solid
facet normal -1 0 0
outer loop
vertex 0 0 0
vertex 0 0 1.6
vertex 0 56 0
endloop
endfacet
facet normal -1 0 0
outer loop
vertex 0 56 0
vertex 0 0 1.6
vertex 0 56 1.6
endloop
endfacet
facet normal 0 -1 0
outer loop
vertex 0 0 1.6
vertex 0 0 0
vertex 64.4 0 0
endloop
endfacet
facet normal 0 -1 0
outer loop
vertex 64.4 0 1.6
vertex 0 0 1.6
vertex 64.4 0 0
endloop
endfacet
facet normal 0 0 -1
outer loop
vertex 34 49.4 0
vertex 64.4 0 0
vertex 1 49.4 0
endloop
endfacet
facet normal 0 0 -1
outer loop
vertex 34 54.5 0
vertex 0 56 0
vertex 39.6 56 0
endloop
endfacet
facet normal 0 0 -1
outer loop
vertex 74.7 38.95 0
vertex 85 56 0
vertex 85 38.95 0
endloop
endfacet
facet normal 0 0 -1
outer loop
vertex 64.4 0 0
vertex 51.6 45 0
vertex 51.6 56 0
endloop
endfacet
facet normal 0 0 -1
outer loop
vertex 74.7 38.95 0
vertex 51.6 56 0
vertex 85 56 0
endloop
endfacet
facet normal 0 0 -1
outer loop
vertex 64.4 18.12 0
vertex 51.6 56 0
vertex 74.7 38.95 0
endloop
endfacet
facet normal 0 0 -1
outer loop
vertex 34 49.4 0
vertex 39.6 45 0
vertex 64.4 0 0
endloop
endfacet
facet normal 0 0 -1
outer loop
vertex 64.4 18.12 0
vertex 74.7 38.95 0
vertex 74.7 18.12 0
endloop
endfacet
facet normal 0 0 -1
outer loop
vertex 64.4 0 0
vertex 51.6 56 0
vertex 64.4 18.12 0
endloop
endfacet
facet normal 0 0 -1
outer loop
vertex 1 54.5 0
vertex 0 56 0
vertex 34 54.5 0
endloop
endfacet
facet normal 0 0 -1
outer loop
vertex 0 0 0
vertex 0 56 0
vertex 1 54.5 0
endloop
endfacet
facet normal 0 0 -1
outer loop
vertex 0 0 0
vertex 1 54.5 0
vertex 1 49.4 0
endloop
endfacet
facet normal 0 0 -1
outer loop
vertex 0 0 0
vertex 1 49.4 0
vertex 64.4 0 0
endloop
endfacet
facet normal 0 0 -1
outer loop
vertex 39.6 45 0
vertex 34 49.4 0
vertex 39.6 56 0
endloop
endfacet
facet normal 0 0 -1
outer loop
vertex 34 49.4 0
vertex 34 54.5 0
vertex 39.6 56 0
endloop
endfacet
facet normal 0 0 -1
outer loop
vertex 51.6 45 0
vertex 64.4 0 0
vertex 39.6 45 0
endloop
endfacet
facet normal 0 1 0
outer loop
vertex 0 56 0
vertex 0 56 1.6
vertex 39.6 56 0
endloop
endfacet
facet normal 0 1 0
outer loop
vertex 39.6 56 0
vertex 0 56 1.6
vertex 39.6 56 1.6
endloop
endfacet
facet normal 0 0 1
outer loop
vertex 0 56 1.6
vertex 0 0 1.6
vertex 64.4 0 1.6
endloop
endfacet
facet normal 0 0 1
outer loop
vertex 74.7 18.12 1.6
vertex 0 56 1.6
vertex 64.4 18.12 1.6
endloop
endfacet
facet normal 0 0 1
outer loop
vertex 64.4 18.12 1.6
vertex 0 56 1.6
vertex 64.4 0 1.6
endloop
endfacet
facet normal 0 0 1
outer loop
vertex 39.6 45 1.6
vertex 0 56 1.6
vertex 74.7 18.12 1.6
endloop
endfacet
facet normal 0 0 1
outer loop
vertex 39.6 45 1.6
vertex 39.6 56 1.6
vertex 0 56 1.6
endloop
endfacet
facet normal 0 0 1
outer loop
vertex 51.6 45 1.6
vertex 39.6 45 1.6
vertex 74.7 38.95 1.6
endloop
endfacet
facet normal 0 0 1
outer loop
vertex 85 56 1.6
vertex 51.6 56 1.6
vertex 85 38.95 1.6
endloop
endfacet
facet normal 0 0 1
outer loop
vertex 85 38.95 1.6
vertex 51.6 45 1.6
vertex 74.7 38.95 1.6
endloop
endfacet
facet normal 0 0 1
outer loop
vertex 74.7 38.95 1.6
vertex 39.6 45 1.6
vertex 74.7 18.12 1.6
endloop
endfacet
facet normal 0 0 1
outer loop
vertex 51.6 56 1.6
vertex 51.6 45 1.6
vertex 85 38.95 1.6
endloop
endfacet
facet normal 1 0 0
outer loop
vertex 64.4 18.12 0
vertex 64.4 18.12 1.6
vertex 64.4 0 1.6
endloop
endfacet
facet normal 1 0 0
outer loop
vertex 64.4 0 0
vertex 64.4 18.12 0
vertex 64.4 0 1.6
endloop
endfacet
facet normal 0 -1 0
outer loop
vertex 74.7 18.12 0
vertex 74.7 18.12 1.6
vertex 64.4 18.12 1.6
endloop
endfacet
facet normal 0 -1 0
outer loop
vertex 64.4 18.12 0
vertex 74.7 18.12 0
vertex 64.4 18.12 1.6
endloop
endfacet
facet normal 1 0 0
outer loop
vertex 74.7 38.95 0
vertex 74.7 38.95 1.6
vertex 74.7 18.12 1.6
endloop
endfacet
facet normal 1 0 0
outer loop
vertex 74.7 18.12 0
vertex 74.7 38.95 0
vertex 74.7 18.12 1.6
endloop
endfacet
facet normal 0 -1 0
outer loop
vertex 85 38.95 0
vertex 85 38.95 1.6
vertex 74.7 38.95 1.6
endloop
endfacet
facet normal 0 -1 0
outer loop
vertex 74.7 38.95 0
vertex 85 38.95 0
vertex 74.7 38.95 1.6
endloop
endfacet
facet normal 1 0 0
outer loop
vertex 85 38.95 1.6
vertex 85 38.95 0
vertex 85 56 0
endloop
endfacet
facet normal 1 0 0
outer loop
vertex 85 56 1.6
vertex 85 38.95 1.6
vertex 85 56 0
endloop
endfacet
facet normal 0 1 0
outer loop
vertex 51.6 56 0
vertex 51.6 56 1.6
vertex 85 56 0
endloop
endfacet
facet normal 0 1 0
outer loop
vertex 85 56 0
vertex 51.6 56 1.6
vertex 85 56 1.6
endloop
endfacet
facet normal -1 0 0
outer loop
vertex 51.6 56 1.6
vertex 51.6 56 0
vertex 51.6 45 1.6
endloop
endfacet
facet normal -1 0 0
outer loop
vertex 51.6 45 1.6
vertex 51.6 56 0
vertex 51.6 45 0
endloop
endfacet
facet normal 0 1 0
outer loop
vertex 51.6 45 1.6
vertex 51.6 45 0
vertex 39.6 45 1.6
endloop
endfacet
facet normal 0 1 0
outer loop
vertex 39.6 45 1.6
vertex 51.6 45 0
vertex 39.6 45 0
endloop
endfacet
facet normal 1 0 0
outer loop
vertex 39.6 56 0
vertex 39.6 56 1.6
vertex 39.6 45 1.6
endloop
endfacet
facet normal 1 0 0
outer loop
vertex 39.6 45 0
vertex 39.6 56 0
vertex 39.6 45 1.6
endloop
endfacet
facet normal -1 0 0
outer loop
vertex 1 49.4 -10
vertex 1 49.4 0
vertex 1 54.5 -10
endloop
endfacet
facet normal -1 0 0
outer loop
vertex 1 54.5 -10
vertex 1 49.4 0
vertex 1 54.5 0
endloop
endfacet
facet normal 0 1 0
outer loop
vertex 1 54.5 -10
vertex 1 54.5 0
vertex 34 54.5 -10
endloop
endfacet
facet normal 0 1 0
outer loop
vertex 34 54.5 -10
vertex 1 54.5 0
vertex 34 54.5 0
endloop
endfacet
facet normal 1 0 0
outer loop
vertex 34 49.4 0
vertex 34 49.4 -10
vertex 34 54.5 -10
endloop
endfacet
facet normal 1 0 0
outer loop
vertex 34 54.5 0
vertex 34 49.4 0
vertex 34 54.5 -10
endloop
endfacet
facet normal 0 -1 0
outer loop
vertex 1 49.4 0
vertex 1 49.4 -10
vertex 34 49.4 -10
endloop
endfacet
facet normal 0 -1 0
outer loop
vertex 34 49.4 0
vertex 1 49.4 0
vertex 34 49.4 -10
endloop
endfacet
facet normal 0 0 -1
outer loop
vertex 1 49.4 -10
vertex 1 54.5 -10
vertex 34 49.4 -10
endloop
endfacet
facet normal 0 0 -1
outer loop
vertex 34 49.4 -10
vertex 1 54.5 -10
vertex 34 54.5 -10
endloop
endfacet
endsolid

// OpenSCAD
/*
 * EVE Alpha
 *
 * Copyright 2012 b@Zi.iS
 *
 * License CC BY 3.0
 */


$fn=60;

eve();

module eve() {

	// PCB
	color([0,.75,0]) {
		difference() {
			cube([
				85,
				56,
				1.6
			]);

			// Ethernet
			translate([
				64.4,
				-1,
				-1
			]) {
				cube([
					100,
					19.12,
					3
				]);
			}

			// USB
			translate([
				74.7,
				-1,
				-1
			]) {
				cube([
					100,
					1+23.35+14.6+1,
					3
				]);
			}

			// Video
			translate([
				39.6,
				45,
				-1
			]) {
				cube([
					12,
					12,
					3
				]);
			}
		}
	}

	// Header
	color([0,0,0]) {
		translate([
			1,
			49.4,
			-10
		]) {
			cube([
				33,
				5.1,
				10
			]);
		}
	}
	
}
